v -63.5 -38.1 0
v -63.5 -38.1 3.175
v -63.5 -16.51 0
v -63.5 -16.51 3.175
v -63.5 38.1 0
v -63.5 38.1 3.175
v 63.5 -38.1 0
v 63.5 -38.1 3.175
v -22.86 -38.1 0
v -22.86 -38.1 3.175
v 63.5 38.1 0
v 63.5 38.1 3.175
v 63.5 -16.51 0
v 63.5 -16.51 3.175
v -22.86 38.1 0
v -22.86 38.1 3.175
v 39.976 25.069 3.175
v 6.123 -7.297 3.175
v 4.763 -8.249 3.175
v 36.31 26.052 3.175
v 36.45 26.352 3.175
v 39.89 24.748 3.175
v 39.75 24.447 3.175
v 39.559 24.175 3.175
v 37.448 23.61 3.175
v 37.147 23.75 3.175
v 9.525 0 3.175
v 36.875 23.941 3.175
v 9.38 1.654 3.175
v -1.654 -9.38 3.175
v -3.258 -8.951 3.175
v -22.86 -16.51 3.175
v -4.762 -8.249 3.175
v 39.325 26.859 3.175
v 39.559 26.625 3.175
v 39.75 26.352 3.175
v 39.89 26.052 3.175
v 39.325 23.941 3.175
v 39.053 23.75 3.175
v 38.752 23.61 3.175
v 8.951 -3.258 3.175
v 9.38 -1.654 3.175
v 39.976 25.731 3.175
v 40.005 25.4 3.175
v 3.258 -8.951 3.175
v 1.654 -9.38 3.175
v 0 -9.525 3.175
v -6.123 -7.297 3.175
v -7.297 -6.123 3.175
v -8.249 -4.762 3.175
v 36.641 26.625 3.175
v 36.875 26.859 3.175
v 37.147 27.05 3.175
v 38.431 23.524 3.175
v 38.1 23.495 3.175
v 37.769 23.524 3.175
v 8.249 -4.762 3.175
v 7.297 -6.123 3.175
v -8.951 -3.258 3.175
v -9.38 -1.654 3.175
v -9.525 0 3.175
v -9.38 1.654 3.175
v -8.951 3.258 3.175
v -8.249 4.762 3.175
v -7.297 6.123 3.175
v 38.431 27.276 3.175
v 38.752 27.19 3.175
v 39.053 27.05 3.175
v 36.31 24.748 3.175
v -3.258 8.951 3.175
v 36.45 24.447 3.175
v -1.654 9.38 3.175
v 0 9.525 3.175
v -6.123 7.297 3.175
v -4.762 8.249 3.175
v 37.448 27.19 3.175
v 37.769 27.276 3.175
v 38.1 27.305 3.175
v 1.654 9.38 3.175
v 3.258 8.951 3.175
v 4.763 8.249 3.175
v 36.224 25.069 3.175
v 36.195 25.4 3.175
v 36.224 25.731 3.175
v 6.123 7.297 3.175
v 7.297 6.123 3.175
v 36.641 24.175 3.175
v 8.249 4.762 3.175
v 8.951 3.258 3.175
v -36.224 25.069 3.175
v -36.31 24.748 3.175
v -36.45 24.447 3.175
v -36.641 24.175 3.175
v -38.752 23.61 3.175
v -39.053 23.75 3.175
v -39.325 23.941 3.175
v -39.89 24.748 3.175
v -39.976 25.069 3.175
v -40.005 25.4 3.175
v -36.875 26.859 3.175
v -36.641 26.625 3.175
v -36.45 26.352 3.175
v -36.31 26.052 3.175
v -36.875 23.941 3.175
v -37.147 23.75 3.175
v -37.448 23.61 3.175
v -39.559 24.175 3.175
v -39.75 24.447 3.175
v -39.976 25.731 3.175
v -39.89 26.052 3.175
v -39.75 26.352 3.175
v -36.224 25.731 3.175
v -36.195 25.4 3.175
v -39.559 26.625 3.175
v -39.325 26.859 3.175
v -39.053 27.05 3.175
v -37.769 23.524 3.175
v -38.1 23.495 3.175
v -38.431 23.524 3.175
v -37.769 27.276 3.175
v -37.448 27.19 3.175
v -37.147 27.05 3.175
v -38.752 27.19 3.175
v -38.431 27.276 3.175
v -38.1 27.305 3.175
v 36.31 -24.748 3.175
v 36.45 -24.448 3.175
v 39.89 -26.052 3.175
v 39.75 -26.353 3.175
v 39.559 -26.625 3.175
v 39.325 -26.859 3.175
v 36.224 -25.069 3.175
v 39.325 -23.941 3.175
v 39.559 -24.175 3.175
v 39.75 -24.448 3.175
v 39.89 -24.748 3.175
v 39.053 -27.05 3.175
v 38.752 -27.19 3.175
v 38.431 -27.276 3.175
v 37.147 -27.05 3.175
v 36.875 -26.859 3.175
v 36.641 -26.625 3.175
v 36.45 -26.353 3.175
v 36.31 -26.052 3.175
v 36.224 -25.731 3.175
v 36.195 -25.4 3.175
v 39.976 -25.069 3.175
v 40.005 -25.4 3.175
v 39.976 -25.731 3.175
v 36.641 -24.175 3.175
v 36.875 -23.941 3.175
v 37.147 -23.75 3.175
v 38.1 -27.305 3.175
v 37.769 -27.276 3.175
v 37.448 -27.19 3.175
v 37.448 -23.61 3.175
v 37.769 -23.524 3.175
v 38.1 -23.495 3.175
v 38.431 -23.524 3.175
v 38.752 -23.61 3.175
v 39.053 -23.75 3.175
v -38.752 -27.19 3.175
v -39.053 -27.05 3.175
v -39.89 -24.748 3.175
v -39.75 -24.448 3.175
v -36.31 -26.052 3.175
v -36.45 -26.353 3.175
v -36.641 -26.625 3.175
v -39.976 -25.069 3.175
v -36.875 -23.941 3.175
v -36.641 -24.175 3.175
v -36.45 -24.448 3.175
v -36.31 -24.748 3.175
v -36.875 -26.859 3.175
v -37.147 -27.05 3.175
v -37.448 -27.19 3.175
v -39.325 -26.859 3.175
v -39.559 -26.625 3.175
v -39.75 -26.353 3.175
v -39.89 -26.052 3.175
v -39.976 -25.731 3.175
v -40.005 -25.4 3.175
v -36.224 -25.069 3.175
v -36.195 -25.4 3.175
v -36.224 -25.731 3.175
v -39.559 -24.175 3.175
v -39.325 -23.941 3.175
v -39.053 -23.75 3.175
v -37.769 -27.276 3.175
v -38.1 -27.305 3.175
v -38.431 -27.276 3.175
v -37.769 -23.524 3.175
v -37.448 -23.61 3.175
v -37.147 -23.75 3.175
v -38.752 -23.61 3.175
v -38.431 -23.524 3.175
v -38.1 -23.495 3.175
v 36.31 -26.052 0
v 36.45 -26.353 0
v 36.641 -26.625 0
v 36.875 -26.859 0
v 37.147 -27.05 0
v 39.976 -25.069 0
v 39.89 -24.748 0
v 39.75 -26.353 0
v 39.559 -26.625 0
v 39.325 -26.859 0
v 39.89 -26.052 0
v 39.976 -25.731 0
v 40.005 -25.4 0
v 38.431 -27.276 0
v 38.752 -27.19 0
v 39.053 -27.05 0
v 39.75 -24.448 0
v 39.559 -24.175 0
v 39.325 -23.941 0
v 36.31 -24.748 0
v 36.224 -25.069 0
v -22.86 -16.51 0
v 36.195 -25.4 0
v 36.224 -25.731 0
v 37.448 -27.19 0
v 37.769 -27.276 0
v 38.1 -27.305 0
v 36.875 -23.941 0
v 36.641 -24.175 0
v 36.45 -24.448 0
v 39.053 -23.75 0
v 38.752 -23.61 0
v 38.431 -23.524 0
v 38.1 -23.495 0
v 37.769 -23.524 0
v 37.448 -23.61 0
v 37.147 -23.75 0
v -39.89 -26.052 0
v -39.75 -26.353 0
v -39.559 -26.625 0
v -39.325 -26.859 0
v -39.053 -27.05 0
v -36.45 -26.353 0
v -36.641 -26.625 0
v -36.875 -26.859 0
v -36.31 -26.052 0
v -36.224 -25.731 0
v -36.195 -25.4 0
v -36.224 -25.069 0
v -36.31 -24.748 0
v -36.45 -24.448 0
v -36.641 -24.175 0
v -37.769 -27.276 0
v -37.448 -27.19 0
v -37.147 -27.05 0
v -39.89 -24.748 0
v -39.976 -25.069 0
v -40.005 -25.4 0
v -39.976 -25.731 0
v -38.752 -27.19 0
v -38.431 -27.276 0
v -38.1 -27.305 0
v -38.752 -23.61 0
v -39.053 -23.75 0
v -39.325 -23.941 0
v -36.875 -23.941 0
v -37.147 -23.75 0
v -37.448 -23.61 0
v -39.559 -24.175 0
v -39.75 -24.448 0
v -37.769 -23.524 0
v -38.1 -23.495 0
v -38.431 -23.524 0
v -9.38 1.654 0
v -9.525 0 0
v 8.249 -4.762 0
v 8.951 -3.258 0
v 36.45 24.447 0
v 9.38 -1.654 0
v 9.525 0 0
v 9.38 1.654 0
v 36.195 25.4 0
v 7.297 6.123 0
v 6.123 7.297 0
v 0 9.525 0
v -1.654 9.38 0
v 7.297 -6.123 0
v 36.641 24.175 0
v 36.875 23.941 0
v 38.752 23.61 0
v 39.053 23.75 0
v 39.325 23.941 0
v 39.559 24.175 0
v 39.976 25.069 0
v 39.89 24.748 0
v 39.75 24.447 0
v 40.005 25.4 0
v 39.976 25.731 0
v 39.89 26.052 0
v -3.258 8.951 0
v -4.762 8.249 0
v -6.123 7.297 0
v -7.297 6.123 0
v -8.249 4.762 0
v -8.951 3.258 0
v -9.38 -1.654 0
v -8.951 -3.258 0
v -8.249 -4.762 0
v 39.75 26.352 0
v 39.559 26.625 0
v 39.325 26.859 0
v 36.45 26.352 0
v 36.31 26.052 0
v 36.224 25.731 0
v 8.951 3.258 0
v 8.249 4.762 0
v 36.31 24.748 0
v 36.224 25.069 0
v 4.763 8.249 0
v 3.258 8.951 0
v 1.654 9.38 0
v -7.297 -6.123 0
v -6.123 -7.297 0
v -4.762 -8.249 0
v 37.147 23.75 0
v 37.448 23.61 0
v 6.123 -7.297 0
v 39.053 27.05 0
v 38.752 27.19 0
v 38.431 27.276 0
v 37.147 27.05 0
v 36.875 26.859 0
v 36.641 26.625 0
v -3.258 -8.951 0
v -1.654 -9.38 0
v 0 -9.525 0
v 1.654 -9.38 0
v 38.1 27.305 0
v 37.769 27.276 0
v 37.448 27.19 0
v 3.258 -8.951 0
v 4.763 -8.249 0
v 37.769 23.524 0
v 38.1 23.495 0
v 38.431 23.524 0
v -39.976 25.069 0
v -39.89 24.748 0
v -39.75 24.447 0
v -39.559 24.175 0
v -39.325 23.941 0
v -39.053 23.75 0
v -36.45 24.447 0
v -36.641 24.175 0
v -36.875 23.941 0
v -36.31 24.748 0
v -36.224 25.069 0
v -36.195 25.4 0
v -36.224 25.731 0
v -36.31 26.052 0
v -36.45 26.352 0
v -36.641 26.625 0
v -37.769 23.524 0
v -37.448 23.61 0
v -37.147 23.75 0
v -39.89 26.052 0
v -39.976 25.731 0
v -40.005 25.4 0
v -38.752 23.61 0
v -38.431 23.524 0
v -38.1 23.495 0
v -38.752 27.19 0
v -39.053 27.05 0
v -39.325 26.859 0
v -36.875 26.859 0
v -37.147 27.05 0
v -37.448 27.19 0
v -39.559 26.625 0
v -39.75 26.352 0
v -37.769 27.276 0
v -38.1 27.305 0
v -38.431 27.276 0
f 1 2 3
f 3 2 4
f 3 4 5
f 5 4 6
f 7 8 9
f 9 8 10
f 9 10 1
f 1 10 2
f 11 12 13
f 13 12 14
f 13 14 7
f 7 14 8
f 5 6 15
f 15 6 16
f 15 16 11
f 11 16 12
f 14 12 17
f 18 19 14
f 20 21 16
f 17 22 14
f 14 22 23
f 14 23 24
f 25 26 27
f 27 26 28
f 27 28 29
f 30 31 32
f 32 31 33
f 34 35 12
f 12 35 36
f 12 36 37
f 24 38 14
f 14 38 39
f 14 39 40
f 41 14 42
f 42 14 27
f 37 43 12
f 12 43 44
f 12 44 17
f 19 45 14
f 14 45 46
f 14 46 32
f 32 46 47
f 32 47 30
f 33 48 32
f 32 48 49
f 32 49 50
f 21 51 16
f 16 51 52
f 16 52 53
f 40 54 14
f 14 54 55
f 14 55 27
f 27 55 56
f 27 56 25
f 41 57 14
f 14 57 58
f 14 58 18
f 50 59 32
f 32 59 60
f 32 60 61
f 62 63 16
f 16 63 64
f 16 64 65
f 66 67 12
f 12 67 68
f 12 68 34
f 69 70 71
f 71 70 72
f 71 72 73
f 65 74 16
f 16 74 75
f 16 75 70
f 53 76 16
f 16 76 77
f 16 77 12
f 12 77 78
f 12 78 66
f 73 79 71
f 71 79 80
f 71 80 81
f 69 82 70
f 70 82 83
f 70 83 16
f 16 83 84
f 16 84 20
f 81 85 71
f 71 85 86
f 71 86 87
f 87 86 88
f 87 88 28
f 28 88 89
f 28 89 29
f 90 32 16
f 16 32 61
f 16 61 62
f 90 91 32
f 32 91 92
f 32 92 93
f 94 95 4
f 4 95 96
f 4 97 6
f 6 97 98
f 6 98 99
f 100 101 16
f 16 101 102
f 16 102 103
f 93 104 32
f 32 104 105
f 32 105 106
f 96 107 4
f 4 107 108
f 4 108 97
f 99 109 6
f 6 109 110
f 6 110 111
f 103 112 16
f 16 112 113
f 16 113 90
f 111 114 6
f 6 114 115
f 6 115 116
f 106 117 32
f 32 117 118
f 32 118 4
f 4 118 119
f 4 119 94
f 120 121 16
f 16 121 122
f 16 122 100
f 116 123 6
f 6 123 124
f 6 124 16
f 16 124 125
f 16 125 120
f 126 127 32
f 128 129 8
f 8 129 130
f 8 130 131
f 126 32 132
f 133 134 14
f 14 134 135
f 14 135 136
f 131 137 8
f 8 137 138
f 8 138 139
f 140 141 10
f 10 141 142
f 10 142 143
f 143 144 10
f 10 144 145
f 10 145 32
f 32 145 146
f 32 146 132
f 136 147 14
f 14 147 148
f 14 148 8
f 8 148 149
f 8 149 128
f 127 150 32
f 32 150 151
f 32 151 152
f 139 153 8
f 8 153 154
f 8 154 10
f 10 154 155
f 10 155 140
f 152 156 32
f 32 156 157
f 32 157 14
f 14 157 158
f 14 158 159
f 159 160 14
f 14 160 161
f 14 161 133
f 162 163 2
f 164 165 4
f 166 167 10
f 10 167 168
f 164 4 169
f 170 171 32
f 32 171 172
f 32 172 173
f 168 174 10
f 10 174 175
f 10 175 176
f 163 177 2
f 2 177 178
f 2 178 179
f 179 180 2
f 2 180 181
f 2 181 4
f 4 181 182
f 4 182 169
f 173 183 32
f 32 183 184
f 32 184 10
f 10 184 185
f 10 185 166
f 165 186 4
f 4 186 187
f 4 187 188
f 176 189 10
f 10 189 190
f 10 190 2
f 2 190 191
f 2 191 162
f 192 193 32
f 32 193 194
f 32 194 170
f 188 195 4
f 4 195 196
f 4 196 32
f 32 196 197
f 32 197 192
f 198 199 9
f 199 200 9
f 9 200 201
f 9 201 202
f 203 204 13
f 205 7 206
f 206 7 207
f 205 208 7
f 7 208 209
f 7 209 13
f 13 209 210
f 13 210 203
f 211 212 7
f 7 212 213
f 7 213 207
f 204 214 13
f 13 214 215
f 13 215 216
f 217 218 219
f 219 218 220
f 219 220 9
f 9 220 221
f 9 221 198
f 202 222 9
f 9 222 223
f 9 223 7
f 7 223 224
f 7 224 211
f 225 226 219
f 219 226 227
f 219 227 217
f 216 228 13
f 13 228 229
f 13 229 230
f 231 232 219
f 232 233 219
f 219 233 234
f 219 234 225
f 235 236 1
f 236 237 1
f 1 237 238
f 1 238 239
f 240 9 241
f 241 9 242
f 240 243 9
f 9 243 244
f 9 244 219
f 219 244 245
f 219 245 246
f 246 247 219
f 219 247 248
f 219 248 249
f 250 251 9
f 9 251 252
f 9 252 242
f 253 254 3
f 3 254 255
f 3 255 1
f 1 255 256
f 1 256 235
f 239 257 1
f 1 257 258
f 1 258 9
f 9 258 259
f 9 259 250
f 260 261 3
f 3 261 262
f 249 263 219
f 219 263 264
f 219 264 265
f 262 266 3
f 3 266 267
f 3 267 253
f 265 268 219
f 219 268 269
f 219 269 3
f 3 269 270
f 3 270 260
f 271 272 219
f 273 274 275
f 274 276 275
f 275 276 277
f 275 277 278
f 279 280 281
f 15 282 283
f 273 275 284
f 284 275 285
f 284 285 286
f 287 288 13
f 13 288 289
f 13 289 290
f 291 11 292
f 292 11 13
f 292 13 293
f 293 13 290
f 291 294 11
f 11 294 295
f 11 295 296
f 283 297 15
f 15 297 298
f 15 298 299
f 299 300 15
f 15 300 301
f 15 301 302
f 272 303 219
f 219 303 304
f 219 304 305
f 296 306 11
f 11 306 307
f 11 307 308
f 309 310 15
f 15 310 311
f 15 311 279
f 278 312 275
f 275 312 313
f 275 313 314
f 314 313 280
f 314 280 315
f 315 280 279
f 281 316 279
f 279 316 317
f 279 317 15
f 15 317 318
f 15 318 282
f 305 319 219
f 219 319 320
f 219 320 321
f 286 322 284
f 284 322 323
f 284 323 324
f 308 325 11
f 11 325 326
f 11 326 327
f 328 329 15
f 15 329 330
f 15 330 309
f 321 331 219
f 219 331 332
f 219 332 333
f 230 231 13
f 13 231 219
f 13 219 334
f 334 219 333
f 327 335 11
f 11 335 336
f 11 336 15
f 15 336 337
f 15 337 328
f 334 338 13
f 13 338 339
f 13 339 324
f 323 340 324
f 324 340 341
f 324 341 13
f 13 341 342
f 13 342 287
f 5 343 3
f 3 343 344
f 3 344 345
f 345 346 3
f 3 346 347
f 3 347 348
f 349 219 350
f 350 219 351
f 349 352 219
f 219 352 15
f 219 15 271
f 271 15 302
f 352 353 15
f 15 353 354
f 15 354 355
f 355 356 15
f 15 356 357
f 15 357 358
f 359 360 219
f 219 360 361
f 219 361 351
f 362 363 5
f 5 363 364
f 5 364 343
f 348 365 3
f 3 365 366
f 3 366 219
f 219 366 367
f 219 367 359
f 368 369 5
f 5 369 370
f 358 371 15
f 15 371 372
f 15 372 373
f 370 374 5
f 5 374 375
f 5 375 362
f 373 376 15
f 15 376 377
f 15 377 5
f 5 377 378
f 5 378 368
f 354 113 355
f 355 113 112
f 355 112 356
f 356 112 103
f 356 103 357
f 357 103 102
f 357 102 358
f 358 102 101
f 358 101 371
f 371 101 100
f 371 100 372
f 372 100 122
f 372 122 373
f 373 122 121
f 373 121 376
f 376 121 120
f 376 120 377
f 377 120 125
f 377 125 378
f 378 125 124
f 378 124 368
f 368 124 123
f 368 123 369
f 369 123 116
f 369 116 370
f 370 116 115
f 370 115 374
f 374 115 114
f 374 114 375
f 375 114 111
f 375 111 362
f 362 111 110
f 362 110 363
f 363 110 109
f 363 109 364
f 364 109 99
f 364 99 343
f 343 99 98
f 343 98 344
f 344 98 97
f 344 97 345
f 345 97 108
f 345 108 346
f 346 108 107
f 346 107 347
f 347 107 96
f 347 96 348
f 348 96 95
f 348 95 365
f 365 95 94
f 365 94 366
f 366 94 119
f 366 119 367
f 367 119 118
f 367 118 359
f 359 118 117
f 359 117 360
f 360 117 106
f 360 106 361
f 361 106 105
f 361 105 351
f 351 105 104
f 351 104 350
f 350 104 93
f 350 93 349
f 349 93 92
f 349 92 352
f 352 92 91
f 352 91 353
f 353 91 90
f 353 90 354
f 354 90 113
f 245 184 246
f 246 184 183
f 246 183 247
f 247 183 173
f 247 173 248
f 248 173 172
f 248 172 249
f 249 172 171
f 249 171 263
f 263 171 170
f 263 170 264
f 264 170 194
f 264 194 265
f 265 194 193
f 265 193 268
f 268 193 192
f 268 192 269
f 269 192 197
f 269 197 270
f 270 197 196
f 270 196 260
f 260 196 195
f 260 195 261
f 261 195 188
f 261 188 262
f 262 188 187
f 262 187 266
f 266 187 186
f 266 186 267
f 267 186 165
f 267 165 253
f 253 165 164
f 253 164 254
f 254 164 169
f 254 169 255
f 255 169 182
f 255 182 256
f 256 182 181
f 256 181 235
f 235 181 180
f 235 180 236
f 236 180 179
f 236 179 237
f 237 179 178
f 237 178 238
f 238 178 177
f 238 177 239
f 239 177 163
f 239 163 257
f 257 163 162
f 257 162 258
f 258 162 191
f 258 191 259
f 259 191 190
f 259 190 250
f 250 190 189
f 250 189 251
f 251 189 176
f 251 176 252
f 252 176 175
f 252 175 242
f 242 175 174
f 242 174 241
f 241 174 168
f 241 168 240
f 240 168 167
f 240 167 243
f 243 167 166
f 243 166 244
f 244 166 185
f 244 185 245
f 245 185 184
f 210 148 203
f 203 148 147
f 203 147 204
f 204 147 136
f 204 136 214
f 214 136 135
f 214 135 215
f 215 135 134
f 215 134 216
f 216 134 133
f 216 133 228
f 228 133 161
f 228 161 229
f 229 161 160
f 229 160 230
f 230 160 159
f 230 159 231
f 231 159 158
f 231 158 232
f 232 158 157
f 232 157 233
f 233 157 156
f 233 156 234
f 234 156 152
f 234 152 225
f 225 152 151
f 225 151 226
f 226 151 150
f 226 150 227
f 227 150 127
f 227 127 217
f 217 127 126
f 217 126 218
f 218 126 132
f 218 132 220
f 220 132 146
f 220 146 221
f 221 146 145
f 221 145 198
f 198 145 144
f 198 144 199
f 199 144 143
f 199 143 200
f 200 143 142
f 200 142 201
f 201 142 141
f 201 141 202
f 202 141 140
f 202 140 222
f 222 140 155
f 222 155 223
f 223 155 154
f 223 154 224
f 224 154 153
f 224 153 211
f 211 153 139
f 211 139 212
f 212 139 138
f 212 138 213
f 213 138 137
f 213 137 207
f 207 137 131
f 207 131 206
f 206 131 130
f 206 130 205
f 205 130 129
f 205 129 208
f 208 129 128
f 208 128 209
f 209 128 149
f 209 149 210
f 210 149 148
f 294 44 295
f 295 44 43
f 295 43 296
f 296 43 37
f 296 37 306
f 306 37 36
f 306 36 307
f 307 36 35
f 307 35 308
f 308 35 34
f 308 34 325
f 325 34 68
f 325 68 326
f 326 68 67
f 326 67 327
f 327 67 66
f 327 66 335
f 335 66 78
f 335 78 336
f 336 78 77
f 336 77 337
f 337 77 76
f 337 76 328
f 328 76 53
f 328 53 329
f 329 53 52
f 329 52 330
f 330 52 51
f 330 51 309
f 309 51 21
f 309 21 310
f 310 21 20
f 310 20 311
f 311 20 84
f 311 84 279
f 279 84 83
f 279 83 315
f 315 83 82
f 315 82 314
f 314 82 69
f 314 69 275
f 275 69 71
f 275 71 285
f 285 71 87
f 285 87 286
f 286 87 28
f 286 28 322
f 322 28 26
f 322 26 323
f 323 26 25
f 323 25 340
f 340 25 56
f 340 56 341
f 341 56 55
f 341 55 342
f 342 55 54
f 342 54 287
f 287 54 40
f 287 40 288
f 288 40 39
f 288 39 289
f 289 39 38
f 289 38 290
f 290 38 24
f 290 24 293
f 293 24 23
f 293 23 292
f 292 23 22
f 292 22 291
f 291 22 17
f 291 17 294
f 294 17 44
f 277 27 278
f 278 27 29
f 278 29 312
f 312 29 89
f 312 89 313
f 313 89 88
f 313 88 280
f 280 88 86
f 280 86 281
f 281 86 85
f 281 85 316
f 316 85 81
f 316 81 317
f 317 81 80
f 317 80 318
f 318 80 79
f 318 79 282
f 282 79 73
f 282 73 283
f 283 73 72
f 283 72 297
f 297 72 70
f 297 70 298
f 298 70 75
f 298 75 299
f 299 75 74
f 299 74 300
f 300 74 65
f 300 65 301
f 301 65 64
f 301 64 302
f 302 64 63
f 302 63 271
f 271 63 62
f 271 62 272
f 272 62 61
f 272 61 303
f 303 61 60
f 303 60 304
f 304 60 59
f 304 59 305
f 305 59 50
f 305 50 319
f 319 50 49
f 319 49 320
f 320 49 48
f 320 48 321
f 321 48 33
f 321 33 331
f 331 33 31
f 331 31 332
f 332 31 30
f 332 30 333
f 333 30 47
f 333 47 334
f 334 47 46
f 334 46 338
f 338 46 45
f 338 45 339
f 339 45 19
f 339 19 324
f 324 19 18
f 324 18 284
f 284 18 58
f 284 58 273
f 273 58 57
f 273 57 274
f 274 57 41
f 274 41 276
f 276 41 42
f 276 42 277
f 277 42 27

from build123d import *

# Parameters (mm, degrees)
SKETCH1_W                = 127
SKETCH1_H                = 76.2
BOSS_EXTRUDE1_DEPTH      = 3.175
BOSS_EXTRUDE2_DEPTH      = 12.7
BOSS_EXTRUDE2_DEPTH_BACK = 25.4
SKETCH2_R                = 9.525
F_1_2_13_TAPPED_HOLE3_D  = 11.684
THREAD2_PITCH            = 1.953846154
THREAD2_HEIGHT           = 30.32
THREAD2_RADIUS           = 5.842
SKETCH12_R               = 1.905
CUT_EXTRUDE1_DEPTH       = 79.28805787
SKETCH13_R               = 9.525
CUT_EXTRUDE2_DEPTH       = 6.35
SKETCH15_R               = 9.525
CUT_EXTRUDE4_DEPTH       = 81.572467421


with BuildPart() as part:
    # Sketch1 → Boss-Extrude1 (new body)
    with BuildSketch(Plane.XY):
        Rectangle(SKETCH1_W, SKETCH1_H)
    extrude(amount=BOSS_EXTRUDE1_DEPTH)

    # Sketch2 → Boss-Extrude2 (add, two sides: drawn at the far end of the back side and taken through both)
    with BuildSketch(Plane.XY.offset(3.175).offset(-BOSS_EXTRUDE2_DEPTH_BACK)):
        Circle(SKETCH2_R)
    extrude(amount=BOSS_EXTRUDE2_DEPTH + BOSS_EXTRUDE2_DEPTH_BACK)

    # 1/2-13 Tapped Hole3 (through all)
    with Locations(Plane.XY.offset(15.875)):
        with Locations((0, 0)):
            Hole(F_1_2_13_TAPPED_HOLE3_D / 2)

    # Thread2: sweep along a helix
    with BuildLine() as thread2_path:
        Helix(THREAD2_PITCH, THREAD2_HEIGHT, THREAD2_RADIUS, center=(0, 0, 15.875), direction=(0, 0, -1))
    # Thread Profile2 → Thread2 (sweep)
    with BuildSketch(Plane(origin=(-5.842, 0, 15.875), x_dir=(-1, 0, 0), z_dir=(0, -1, 0))):
        Polygon((0, 0), (1.057550248, 0.61057692), (1.057550248, 0.85480769), (0, 1.46538461), align=None)
    sweep(path=thread2_path.line, is_frenet=True)

    # Sketch12 → Cut-Extrude1 (cut, through all)
    with BuildSketch(Plane.XY.offset(3.175)):
        with Locations((-38.1, 25.4)):
            Circle(SKETCH12_R)
        with Locations((-38.1, -25.4)):
            Circle(SKETCH12_R)
        with Locations((38.1, -25.4)):
            Circle(SKETCH12_R)
        with Locations((38.1, 25.4)):
            Circle(SKETCH12_R)
    extrude(amount=-CUT_EXTRUDE1_DEPTH, mode=Mode.SUBTRACT)

    # Sketch13 → Cut-Extrude2 (cut)
    with BuildSketch(Plane.XY.offset(15.875)):
        Circle(SKETCH13_R)
    extrude(amount=-CUT_EXTRUDE2_DEPTH, mode=Mode.SUBTRACT)

    # Sketch15 → Cut-Extrude4 (cut, through all)
    with BuildSketch(Plane.XY.offset(9.525)):
        Circle(SKETCH15_R)
    extrude(amount=-CUT_EXTRUDE4_DEPTH, mode=Mode.SUBTRACT)


solid = part.part
